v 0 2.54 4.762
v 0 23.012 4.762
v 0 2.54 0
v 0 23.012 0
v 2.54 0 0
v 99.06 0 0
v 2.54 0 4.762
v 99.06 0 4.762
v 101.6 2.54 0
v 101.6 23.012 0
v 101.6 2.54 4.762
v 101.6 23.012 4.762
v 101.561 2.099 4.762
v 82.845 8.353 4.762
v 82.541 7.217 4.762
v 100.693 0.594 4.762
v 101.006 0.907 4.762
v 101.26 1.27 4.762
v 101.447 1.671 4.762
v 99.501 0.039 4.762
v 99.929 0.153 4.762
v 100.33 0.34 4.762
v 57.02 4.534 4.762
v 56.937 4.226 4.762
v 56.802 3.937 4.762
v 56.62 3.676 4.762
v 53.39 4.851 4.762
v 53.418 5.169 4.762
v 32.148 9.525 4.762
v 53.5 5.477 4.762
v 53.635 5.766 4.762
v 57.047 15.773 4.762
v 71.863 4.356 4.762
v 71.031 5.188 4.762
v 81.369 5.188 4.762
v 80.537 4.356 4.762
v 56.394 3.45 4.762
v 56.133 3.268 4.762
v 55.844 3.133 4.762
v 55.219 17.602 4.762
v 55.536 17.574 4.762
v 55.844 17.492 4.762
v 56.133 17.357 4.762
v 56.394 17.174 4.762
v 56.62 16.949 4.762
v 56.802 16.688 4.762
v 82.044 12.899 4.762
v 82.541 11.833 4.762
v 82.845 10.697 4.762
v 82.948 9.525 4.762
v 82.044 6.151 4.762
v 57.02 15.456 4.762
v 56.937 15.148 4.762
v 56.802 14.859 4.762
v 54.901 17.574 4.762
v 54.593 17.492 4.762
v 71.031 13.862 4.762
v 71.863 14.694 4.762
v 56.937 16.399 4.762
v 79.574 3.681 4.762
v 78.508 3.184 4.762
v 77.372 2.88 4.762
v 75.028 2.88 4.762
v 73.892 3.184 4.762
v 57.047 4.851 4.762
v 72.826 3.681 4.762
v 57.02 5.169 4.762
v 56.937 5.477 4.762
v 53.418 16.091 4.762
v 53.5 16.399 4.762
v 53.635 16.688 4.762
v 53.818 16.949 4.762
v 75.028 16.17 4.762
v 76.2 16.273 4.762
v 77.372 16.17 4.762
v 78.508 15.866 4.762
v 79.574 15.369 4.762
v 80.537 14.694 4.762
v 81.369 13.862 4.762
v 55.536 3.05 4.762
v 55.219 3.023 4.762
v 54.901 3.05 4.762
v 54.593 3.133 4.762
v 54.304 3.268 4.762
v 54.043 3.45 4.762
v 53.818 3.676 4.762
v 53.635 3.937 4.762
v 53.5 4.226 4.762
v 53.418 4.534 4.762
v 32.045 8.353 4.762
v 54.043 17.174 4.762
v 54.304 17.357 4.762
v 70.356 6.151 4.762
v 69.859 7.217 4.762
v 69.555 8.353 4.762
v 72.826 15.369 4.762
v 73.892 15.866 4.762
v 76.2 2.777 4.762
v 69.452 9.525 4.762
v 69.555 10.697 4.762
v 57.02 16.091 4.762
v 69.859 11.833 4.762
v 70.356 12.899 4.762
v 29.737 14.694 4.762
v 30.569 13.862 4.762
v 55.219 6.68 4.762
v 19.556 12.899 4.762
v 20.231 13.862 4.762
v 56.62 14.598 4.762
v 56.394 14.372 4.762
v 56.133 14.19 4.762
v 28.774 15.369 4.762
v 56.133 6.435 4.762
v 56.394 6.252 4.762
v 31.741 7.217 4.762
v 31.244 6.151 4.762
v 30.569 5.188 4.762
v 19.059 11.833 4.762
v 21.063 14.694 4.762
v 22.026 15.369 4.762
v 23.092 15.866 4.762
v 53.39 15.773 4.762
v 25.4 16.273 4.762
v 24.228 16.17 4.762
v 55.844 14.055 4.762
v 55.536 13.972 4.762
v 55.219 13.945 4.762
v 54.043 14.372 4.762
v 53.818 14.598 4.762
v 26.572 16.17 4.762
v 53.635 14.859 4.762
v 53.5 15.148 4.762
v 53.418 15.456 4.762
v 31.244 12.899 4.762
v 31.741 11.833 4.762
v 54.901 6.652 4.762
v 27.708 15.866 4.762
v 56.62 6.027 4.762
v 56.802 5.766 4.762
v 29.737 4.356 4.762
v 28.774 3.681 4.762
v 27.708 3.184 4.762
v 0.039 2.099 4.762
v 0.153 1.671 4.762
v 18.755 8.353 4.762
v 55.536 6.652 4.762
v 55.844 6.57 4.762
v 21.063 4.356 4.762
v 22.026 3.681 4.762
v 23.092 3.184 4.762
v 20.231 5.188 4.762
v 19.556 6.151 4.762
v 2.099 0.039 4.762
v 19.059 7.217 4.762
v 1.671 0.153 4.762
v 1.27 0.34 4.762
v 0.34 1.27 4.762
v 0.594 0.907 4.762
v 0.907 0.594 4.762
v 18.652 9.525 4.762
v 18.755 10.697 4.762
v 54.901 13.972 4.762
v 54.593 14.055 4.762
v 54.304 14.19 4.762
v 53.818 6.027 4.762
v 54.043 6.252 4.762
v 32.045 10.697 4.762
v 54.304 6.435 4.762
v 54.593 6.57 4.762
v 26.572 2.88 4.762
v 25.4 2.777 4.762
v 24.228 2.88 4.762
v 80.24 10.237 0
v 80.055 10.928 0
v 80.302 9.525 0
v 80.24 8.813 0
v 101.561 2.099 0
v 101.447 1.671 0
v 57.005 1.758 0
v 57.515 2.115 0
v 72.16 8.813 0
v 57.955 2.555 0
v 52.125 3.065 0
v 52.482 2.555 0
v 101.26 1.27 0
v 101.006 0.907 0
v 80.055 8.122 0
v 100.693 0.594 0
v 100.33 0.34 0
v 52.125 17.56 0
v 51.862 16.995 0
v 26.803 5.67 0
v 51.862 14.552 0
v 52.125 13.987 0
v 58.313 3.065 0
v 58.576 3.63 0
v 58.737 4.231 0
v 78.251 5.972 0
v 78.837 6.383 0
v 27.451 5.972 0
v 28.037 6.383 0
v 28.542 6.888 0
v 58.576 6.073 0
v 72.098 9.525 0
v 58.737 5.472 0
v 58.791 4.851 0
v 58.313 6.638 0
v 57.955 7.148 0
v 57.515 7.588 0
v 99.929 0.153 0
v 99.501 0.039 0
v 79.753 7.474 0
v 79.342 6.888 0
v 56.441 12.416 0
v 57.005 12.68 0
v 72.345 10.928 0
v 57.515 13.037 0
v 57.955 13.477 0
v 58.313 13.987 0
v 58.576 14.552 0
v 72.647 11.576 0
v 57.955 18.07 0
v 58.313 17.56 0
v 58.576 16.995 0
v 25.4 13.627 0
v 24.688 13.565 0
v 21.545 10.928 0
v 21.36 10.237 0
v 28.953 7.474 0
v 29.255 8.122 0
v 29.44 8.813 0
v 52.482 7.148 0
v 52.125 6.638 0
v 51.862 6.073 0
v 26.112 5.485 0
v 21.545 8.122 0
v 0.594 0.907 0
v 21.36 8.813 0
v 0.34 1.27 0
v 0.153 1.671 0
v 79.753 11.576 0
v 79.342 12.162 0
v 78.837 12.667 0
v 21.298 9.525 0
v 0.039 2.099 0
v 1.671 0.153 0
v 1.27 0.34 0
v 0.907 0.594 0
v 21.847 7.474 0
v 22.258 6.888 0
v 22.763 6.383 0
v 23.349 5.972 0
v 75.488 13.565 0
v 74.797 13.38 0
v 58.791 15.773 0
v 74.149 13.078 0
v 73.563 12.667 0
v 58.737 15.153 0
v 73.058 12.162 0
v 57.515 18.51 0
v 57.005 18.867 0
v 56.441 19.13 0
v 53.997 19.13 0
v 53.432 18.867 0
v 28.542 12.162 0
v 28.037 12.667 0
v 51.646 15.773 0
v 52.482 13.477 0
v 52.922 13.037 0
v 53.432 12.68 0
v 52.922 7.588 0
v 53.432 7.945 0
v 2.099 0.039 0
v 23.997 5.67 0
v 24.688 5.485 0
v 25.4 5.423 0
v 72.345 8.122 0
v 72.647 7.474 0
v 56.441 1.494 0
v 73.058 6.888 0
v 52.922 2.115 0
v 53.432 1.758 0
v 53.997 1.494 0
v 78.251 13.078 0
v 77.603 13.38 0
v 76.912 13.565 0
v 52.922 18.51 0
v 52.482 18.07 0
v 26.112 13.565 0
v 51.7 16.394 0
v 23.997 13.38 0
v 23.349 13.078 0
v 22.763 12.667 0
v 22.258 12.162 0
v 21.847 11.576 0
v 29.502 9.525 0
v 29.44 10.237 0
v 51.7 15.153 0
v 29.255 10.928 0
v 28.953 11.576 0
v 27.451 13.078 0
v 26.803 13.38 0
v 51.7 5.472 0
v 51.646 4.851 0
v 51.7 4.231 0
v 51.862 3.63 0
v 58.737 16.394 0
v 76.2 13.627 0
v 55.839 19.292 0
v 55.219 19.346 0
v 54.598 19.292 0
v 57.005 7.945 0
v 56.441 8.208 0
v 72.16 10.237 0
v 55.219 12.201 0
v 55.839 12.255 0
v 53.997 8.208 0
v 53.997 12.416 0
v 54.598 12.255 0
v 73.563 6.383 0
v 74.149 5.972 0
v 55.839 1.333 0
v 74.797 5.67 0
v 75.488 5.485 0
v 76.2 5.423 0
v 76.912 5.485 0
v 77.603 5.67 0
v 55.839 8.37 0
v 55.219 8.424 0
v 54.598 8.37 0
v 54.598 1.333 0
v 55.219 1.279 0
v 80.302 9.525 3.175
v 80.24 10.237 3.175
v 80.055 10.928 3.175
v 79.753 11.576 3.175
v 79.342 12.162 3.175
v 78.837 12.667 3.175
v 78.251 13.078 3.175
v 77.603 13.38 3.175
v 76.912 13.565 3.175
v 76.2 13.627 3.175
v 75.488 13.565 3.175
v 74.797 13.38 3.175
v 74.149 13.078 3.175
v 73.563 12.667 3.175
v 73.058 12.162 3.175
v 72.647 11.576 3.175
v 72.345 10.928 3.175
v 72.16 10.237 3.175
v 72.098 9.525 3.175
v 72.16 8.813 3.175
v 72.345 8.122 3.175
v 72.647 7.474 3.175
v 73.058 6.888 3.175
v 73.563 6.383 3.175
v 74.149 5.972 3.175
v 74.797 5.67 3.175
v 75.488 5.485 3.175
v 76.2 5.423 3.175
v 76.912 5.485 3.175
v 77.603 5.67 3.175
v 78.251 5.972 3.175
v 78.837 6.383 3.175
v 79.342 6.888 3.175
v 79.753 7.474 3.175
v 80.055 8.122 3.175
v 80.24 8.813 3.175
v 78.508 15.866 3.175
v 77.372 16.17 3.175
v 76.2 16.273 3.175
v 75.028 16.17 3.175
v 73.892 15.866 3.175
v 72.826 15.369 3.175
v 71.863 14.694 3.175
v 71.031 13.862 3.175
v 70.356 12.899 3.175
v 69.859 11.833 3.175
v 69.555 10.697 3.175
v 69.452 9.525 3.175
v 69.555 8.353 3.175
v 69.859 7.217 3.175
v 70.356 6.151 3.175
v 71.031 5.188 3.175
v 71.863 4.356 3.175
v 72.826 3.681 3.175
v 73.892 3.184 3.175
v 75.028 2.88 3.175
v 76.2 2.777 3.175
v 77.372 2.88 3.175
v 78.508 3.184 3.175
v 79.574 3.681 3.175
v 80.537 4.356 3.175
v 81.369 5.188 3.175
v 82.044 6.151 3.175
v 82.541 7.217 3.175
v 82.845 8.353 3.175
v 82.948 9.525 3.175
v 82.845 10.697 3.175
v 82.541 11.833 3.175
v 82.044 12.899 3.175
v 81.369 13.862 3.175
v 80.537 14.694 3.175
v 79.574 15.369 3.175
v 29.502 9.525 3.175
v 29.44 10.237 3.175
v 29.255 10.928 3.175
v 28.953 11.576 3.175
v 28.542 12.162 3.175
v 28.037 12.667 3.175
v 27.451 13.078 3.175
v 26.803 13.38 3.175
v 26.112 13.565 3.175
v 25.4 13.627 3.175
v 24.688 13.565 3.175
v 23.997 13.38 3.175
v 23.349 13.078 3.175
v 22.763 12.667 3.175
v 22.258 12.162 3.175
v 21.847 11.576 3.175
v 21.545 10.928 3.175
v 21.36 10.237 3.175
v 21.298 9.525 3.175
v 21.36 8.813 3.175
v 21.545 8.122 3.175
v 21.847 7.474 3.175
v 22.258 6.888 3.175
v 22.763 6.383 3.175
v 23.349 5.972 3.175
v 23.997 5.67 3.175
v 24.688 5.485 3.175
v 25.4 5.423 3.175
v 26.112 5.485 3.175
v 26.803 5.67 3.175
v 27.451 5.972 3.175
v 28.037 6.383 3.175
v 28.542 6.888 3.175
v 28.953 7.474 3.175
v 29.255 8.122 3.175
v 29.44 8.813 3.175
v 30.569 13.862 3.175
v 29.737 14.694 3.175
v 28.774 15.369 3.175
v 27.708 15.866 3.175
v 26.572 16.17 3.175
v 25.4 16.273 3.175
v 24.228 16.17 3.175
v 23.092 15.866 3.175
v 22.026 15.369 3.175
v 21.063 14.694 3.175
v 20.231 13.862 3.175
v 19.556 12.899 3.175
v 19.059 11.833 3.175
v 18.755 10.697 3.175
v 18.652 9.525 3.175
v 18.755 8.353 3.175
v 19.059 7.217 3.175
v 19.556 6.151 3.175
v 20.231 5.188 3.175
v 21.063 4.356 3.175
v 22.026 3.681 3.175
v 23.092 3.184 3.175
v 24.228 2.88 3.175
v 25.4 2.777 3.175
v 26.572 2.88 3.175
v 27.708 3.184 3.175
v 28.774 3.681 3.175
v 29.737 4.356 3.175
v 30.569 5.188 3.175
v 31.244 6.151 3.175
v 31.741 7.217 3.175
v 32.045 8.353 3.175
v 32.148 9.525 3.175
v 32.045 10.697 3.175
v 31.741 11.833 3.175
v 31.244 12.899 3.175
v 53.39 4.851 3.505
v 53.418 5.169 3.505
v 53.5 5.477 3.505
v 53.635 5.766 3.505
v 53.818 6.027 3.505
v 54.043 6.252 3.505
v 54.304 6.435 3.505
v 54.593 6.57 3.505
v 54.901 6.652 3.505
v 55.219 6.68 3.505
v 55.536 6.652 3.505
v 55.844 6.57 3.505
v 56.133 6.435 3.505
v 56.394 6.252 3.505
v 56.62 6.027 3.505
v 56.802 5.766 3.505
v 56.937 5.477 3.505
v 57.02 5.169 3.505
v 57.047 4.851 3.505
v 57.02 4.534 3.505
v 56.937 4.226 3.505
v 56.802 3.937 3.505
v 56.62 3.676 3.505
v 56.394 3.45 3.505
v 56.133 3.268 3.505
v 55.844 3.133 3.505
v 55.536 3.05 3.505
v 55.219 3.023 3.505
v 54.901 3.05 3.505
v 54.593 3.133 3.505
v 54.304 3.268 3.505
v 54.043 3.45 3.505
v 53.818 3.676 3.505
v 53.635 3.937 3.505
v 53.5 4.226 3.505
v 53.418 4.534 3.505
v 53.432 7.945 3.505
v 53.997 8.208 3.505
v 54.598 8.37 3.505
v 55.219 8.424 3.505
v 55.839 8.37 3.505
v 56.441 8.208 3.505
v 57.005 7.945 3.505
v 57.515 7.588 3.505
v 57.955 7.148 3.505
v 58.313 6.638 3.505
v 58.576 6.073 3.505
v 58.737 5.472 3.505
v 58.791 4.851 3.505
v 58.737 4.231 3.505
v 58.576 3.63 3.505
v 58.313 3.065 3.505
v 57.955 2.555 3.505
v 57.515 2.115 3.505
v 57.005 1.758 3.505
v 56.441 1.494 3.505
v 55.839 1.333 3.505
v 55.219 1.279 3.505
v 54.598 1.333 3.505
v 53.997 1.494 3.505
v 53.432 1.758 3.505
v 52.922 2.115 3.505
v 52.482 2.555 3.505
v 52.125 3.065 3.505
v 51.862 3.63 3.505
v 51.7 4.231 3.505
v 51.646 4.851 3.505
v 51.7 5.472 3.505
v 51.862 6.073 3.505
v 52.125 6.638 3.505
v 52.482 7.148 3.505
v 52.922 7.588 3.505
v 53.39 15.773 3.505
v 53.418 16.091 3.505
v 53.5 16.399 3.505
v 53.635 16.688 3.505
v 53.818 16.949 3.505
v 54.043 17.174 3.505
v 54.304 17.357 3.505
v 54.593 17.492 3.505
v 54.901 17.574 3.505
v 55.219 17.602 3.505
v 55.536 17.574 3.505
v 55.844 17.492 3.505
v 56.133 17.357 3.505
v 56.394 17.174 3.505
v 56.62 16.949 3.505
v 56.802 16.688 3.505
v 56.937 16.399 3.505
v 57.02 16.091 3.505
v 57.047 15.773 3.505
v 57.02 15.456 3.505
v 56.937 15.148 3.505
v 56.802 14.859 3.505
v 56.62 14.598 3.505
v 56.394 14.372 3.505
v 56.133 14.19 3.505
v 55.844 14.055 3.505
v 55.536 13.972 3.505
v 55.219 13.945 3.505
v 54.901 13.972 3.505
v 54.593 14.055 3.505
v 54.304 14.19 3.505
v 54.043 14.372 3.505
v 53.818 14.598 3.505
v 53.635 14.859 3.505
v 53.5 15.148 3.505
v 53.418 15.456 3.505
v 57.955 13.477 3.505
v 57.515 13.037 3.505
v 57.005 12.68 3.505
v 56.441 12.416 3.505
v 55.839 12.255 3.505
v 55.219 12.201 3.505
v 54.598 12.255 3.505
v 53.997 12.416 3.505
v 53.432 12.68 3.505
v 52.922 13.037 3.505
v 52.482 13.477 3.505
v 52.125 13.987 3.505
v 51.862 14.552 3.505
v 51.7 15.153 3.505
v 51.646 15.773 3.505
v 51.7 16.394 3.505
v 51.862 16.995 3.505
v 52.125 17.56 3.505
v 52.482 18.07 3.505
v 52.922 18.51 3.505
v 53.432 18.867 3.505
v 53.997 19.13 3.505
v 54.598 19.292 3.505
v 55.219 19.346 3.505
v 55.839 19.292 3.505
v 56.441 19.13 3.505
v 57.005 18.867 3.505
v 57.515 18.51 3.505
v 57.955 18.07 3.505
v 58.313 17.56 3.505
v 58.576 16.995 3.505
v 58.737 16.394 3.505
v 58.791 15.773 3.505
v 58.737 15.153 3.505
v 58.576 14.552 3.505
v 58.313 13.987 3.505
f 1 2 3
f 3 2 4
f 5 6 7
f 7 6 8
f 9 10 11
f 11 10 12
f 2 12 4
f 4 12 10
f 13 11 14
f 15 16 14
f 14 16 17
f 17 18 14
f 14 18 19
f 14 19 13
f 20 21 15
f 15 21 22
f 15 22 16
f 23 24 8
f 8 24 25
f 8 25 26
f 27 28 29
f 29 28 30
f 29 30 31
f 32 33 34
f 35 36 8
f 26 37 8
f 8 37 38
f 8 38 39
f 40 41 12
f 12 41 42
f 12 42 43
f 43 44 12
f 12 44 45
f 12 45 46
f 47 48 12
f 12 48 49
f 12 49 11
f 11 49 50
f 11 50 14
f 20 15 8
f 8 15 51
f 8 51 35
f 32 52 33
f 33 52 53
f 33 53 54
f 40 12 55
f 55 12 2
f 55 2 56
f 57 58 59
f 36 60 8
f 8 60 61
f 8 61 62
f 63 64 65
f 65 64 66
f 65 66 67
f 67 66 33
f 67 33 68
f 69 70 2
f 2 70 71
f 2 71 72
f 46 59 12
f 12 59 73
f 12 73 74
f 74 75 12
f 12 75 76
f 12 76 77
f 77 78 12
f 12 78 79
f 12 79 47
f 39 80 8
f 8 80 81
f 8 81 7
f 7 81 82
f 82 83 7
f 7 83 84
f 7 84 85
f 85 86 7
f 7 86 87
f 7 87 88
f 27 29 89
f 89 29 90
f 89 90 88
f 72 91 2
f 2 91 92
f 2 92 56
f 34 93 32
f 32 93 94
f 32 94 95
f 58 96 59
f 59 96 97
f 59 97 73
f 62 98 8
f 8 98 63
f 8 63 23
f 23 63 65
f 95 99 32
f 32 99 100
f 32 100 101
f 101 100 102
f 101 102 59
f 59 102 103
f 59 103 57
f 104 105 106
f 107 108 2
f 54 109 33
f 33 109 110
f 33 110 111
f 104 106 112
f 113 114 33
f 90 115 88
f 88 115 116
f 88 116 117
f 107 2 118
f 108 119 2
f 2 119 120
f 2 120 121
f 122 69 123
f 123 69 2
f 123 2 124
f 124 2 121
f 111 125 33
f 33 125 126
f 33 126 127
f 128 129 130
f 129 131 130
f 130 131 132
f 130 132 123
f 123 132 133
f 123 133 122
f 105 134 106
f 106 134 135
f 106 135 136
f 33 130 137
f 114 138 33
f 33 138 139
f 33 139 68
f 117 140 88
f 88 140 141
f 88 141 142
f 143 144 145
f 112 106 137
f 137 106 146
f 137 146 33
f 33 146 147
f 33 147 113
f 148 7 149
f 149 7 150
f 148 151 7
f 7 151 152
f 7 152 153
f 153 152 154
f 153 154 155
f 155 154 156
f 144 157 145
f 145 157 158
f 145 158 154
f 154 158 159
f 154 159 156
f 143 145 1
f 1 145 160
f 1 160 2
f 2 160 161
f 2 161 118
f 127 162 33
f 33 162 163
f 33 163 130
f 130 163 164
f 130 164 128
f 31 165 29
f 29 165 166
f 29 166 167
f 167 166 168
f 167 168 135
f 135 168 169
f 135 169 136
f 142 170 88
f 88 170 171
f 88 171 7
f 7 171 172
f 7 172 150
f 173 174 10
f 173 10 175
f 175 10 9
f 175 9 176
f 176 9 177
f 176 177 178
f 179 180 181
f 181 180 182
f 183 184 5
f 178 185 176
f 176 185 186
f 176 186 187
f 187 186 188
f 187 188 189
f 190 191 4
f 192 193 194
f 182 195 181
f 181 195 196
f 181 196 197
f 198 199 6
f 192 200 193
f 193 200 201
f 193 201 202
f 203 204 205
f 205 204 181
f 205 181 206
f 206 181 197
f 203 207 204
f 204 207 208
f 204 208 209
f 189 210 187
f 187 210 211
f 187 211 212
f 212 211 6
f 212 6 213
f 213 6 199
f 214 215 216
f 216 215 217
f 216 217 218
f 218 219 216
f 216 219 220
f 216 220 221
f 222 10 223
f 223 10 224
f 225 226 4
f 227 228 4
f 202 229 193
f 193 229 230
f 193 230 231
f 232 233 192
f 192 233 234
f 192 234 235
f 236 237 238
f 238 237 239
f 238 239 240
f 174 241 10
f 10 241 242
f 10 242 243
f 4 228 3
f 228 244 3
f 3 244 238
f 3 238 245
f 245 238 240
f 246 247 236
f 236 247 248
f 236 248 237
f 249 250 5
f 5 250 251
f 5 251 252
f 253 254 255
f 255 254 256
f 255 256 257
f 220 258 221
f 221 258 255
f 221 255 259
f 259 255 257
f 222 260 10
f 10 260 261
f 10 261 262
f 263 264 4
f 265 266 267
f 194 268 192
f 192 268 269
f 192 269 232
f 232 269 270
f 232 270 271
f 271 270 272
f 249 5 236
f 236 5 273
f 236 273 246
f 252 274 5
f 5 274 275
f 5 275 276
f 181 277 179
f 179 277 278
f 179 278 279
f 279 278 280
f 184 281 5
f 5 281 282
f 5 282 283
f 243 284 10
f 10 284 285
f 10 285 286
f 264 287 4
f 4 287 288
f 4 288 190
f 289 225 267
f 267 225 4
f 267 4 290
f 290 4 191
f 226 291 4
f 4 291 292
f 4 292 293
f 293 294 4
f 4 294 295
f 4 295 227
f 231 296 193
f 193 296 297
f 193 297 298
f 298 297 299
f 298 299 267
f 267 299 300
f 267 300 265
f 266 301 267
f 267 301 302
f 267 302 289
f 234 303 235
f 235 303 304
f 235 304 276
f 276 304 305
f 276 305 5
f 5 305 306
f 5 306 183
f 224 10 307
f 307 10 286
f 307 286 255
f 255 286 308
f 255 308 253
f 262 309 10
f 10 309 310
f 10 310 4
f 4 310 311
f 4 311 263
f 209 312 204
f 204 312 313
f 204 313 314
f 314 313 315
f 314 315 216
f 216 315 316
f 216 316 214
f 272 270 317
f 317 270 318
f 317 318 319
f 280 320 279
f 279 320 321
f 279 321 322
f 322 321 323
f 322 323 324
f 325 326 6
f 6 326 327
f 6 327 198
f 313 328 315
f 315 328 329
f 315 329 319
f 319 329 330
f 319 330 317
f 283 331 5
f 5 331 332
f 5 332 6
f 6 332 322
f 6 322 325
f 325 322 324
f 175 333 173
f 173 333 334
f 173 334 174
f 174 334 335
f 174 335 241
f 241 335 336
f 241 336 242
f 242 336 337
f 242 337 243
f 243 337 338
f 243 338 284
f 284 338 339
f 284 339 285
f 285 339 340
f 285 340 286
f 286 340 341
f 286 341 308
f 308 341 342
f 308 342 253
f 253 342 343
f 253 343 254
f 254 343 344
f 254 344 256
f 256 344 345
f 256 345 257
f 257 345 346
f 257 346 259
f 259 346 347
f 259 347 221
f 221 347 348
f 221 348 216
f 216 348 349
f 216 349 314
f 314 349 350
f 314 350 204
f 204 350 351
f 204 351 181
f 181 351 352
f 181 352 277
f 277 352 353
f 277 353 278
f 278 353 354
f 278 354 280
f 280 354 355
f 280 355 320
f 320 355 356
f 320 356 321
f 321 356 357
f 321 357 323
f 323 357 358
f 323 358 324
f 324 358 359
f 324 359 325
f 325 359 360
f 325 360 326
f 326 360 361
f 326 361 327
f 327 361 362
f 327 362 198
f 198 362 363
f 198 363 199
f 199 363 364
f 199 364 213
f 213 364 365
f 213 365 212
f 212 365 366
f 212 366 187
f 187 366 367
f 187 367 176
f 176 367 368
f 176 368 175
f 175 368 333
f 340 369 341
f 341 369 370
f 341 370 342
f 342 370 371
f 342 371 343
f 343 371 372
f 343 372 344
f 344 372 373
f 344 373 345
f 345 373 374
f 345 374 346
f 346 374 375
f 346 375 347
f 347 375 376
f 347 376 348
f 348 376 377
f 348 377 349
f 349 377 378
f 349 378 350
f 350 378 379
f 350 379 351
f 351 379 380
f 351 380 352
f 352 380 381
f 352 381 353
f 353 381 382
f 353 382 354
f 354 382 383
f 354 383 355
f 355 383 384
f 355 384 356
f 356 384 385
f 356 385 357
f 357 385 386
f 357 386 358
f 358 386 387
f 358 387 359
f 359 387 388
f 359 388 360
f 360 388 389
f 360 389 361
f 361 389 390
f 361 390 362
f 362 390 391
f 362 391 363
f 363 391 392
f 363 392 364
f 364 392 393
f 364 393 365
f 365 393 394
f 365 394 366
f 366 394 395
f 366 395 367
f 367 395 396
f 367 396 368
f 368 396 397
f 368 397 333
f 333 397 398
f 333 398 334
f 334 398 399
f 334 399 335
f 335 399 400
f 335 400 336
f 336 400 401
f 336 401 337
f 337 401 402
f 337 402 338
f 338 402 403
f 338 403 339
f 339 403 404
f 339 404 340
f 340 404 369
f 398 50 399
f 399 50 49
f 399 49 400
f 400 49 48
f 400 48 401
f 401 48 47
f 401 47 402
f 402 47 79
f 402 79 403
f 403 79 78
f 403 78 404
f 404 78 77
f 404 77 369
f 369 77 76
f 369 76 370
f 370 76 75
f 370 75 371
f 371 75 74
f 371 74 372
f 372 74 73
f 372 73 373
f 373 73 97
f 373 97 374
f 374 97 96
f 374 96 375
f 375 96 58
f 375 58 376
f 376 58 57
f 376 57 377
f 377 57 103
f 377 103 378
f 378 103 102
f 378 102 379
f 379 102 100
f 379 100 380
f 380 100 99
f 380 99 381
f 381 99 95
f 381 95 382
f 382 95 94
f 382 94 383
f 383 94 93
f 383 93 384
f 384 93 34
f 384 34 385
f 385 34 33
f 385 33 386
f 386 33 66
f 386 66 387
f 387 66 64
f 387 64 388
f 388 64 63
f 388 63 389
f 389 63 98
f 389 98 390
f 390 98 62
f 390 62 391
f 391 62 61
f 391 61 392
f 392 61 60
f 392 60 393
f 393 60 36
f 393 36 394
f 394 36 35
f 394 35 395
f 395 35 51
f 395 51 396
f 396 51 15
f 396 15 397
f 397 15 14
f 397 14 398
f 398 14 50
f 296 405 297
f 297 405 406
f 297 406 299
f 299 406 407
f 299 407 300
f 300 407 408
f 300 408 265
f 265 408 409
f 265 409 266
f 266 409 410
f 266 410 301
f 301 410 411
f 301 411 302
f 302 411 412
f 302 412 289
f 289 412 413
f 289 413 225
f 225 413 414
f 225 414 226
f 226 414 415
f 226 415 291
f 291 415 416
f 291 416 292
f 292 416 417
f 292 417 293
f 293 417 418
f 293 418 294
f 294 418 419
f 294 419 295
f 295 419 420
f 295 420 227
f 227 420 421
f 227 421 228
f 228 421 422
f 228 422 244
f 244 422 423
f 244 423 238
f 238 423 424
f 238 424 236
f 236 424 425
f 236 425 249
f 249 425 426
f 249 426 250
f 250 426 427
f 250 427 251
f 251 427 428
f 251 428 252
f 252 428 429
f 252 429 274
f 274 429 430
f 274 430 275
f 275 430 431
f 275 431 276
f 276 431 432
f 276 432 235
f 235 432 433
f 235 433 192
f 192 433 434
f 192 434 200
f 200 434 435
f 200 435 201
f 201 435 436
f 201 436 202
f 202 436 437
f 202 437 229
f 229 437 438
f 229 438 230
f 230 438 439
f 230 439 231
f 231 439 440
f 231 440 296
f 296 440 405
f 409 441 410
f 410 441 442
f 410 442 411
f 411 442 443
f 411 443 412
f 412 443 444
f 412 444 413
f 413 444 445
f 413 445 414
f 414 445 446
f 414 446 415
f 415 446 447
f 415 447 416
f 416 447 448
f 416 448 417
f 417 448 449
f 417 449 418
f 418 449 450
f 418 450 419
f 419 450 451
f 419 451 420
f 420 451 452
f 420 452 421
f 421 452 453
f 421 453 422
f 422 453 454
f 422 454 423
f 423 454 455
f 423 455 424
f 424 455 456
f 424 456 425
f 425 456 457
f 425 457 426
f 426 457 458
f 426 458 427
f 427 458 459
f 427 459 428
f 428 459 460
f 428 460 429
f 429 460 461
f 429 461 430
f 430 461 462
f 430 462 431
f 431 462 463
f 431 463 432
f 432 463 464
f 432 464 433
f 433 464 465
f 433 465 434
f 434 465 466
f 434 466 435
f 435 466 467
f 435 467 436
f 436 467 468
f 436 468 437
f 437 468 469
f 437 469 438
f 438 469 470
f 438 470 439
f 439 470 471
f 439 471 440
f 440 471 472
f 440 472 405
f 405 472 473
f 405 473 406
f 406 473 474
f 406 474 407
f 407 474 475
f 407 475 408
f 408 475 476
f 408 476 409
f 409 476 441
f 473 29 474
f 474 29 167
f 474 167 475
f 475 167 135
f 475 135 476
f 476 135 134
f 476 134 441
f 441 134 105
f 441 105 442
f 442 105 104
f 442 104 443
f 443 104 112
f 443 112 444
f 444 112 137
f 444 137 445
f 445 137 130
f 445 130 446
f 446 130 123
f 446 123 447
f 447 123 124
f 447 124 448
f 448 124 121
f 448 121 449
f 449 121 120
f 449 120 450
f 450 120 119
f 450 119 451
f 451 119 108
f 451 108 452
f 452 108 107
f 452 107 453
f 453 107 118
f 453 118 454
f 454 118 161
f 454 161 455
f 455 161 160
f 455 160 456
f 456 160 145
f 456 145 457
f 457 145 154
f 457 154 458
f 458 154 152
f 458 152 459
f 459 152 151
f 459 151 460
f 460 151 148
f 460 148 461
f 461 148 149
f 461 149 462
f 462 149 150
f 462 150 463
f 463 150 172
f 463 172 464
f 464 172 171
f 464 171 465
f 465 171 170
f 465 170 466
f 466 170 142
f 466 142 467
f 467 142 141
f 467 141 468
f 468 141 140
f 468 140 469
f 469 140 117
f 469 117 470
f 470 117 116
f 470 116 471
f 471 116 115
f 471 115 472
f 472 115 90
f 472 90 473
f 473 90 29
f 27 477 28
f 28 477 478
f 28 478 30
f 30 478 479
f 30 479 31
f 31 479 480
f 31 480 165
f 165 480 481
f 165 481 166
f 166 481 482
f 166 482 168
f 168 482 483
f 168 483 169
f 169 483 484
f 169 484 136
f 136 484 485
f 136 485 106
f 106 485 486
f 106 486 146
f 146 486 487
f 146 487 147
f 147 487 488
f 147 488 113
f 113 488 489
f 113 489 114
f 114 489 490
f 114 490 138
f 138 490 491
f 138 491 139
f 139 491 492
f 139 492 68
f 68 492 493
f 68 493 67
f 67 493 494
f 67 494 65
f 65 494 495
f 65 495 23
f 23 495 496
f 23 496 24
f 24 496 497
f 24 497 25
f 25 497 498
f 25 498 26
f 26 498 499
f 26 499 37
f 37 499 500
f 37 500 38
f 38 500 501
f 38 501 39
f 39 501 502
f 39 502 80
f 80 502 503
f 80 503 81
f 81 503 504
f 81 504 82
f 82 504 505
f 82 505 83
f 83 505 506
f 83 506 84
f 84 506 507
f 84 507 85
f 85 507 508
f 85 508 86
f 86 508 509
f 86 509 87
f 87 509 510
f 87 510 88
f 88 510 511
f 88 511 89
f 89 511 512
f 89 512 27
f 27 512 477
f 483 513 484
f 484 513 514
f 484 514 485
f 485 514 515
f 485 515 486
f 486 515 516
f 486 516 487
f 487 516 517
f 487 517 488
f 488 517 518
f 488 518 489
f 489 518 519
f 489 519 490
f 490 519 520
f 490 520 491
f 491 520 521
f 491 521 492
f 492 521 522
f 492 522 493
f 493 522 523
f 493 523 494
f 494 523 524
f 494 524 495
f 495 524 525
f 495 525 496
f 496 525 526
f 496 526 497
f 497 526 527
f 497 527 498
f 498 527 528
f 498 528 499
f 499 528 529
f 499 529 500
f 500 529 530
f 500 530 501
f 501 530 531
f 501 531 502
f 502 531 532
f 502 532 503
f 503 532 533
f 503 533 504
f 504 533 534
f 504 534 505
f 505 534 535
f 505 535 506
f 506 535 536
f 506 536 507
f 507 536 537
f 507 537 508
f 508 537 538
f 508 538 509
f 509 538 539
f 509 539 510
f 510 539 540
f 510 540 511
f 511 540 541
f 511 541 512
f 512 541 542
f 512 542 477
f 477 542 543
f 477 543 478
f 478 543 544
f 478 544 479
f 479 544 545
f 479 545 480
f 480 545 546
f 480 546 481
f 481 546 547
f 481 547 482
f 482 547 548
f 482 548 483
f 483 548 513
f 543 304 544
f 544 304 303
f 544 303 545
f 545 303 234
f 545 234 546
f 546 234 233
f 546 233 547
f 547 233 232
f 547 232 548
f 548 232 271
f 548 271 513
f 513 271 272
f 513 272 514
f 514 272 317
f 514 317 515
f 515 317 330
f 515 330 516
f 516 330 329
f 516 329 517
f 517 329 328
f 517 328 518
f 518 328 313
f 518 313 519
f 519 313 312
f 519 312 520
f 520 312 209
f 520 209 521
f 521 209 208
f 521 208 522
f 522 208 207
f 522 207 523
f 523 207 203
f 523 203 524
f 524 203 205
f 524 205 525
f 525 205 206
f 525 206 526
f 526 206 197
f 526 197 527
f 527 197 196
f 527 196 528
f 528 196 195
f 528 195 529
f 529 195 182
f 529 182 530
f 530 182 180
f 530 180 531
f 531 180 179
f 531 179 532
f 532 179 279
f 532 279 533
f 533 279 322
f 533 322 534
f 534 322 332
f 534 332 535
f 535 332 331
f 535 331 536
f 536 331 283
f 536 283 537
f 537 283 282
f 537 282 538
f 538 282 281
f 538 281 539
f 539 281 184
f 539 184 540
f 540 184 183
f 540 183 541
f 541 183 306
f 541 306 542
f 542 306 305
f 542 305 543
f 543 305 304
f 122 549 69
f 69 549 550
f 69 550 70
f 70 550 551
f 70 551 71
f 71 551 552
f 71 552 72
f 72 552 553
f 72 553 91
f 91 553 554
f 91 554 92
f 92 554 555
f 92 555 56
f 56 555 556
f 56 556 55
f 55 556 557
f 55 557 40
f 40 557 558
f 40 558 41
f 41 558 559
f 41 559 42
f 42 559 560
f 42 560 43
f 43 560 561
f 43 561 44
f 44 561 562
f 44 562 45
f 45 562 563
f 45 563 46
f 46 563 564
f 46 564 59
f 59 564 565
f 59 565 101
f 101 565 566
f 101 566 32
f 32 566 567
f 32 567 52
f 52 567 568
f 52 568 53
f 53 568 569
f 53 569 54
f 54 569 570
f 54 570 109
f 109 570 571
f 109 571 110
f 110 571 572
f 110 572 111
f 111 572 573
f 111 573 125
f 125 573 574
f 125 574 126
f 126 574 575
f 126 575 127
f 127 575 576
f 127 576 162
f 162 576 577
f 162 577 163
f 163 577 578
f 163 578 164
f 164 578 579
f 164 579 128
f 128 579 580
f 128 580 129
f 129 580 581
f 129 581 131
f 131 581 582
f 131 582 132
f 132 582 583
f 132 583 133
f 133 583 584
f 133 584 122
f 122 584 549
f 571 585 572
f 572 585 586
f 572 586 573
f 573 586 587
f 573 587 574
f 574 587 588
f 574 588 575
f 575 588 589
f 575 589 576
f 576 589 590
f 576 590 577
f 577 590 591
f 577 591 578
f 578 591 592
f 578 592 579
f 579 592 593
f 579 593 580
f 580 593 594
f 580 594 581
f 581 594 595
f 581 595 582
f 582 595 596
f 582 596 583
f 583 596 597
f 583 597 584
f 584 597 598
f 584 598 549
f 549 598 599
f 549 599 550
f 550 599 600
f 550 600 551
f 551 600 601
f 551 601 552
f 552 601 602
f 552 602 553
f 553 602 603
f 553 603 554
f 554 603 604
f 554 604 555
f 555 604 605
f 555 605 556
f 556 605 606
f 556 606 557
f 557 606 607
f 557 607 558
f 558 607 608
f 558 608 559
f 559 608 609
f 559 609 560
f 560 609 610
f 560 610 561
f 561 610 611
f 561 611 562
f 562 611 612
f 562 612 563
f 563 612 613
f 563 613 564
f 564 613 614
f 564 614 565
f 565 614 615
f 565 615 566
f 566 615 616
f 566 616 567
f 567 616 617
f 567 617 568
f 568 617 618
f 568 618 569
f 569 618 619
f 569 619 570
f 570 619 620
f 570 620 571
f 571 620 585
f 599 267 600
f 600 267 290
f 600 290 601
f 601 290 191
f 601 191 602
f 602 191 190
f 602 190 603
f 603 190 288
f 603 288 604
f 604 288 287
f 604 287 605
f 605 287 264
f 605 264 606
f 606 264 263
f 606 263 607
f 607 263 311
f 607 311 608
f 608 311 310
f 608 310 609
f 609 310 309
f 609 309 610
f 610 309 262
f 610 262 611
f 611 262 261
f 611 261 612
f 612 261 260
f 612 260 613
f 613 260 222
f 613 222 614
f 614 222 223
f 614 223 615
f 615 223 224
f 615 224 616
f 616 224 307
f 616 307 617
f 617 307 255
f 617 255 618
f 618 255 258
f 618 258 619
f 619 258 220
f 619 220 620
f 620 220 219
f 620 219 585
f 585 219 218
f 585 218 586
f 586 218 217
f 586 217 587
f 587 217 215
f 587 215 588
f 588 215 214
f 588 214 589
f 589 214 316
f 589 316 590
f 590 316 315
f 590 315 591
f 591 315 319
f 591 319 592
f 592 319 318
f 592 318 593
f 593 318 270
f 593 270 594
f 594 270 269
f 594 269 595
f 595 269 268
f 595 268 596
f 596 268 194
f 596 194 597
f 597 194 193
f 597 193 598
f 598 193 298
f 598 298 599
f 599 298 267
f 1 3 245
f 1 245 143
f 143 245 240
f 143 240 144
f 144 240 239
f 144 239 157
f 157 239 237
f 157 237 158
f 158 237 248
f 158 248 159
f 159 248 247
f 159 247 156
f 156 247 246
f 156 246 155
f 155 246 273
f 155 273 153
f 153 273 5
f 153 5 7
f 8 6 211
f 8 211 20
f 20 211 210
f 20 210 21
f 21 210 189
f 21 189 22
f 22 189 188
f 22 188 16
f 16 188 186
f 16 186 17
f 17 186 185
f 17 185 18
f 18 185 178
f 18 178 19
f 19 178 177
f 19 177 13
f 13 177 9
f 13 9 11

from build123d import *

# Parameters (mm, degrees)
SKETCH1_W                                         = 101.6
SKETCH1_H                                         = 23.0124
BOSS_EXTRUDE1_DEPTH                               = 4.7625
CBORE_FOR_5_16_SOCKET_HEAD_CAP_SCREW1_D           = 8.2042
CBORE_FOR_5_16_SOCKET_HEAD_CAP_SCREW1_CBORE_D     = 13.49502
CBORE_FOR_5_16_SOCKET_HEAD_CAP_SCREW1_CBORE_DEPTH = 1.5875
CBORE_FOR_6_SOCKET_HEAD_CAP_SCREW1_D              = 3.6576
CBORE_FOR_6_SOCKET_HEAD_CAP_SCREW1_CBORE_D        = 7.14502
CBORE_FOR_6_SOCKET_HEAD_CAP_SCREW1_CBORE_DEPTH    = 3.5052
FILLET1_R                                         = 2.54


with BuildPart() as part:
    # Sketch1 → Boss-Extrude1 (new body)
    with BuildSketch(Plane.XY):
        with Locations((50.8, 11.5062)):
            Rectangle(SKETCH1_W, SKETCH1_H)
    extrude(amount=BOSS_EXTRUDE1_DEPTH)

    # CBORE for 5/16 Socket Head Cap Screw1 (through all)
    with Locations(Plane.XY.offset(4.7625)):
        with Locations((76.2, 9.525), (25.4, 9.525)):
            CounterBoreHole(CBORE_FOR_5_16_SOCKET_HEAD_CAP_SCREW1_D / 2, CBORE_FOR_5_16_SOCKET_HEAD_CAP_SCREW1_CBORE_D / 2, CBORE_FOR_5_16_SOCKET_HEAD_CAP_SCREW1_CBORE_DEPTH)

    # CBORE for #6 Socket Head Cap Screw1 (through all)
    with Locations(Plane(origin=(0, 0, 0), x_dir=(-1, 0, 0), z_dir=(0, 0, -1))):
        with Locations((-55.218690757, 15.7734), (-55.218690757, 4.8514)):
            CounterBoreHole(CBORE_FOR_6_SOCKET_HEAD_CAP_SCREW1_D / 2, CBORE_FOR_6_SOCKET_HEAD_CAP_SCREW1_CBORE_D / 2, CBORE_FOR_6_SOCKET_HEAD_CAP_SCREW1_CBORE_DEPTH)

    # Fillet1
    fillet1_edges = [part.edges().sort_by_distance(p)[0] for p in [
        (101.6, 0, 2.38125),
        (0, 0, 2.38125),
    ]]
    fillet(fillet1_edges, radius=FILLET1_R)


solid = part.part
